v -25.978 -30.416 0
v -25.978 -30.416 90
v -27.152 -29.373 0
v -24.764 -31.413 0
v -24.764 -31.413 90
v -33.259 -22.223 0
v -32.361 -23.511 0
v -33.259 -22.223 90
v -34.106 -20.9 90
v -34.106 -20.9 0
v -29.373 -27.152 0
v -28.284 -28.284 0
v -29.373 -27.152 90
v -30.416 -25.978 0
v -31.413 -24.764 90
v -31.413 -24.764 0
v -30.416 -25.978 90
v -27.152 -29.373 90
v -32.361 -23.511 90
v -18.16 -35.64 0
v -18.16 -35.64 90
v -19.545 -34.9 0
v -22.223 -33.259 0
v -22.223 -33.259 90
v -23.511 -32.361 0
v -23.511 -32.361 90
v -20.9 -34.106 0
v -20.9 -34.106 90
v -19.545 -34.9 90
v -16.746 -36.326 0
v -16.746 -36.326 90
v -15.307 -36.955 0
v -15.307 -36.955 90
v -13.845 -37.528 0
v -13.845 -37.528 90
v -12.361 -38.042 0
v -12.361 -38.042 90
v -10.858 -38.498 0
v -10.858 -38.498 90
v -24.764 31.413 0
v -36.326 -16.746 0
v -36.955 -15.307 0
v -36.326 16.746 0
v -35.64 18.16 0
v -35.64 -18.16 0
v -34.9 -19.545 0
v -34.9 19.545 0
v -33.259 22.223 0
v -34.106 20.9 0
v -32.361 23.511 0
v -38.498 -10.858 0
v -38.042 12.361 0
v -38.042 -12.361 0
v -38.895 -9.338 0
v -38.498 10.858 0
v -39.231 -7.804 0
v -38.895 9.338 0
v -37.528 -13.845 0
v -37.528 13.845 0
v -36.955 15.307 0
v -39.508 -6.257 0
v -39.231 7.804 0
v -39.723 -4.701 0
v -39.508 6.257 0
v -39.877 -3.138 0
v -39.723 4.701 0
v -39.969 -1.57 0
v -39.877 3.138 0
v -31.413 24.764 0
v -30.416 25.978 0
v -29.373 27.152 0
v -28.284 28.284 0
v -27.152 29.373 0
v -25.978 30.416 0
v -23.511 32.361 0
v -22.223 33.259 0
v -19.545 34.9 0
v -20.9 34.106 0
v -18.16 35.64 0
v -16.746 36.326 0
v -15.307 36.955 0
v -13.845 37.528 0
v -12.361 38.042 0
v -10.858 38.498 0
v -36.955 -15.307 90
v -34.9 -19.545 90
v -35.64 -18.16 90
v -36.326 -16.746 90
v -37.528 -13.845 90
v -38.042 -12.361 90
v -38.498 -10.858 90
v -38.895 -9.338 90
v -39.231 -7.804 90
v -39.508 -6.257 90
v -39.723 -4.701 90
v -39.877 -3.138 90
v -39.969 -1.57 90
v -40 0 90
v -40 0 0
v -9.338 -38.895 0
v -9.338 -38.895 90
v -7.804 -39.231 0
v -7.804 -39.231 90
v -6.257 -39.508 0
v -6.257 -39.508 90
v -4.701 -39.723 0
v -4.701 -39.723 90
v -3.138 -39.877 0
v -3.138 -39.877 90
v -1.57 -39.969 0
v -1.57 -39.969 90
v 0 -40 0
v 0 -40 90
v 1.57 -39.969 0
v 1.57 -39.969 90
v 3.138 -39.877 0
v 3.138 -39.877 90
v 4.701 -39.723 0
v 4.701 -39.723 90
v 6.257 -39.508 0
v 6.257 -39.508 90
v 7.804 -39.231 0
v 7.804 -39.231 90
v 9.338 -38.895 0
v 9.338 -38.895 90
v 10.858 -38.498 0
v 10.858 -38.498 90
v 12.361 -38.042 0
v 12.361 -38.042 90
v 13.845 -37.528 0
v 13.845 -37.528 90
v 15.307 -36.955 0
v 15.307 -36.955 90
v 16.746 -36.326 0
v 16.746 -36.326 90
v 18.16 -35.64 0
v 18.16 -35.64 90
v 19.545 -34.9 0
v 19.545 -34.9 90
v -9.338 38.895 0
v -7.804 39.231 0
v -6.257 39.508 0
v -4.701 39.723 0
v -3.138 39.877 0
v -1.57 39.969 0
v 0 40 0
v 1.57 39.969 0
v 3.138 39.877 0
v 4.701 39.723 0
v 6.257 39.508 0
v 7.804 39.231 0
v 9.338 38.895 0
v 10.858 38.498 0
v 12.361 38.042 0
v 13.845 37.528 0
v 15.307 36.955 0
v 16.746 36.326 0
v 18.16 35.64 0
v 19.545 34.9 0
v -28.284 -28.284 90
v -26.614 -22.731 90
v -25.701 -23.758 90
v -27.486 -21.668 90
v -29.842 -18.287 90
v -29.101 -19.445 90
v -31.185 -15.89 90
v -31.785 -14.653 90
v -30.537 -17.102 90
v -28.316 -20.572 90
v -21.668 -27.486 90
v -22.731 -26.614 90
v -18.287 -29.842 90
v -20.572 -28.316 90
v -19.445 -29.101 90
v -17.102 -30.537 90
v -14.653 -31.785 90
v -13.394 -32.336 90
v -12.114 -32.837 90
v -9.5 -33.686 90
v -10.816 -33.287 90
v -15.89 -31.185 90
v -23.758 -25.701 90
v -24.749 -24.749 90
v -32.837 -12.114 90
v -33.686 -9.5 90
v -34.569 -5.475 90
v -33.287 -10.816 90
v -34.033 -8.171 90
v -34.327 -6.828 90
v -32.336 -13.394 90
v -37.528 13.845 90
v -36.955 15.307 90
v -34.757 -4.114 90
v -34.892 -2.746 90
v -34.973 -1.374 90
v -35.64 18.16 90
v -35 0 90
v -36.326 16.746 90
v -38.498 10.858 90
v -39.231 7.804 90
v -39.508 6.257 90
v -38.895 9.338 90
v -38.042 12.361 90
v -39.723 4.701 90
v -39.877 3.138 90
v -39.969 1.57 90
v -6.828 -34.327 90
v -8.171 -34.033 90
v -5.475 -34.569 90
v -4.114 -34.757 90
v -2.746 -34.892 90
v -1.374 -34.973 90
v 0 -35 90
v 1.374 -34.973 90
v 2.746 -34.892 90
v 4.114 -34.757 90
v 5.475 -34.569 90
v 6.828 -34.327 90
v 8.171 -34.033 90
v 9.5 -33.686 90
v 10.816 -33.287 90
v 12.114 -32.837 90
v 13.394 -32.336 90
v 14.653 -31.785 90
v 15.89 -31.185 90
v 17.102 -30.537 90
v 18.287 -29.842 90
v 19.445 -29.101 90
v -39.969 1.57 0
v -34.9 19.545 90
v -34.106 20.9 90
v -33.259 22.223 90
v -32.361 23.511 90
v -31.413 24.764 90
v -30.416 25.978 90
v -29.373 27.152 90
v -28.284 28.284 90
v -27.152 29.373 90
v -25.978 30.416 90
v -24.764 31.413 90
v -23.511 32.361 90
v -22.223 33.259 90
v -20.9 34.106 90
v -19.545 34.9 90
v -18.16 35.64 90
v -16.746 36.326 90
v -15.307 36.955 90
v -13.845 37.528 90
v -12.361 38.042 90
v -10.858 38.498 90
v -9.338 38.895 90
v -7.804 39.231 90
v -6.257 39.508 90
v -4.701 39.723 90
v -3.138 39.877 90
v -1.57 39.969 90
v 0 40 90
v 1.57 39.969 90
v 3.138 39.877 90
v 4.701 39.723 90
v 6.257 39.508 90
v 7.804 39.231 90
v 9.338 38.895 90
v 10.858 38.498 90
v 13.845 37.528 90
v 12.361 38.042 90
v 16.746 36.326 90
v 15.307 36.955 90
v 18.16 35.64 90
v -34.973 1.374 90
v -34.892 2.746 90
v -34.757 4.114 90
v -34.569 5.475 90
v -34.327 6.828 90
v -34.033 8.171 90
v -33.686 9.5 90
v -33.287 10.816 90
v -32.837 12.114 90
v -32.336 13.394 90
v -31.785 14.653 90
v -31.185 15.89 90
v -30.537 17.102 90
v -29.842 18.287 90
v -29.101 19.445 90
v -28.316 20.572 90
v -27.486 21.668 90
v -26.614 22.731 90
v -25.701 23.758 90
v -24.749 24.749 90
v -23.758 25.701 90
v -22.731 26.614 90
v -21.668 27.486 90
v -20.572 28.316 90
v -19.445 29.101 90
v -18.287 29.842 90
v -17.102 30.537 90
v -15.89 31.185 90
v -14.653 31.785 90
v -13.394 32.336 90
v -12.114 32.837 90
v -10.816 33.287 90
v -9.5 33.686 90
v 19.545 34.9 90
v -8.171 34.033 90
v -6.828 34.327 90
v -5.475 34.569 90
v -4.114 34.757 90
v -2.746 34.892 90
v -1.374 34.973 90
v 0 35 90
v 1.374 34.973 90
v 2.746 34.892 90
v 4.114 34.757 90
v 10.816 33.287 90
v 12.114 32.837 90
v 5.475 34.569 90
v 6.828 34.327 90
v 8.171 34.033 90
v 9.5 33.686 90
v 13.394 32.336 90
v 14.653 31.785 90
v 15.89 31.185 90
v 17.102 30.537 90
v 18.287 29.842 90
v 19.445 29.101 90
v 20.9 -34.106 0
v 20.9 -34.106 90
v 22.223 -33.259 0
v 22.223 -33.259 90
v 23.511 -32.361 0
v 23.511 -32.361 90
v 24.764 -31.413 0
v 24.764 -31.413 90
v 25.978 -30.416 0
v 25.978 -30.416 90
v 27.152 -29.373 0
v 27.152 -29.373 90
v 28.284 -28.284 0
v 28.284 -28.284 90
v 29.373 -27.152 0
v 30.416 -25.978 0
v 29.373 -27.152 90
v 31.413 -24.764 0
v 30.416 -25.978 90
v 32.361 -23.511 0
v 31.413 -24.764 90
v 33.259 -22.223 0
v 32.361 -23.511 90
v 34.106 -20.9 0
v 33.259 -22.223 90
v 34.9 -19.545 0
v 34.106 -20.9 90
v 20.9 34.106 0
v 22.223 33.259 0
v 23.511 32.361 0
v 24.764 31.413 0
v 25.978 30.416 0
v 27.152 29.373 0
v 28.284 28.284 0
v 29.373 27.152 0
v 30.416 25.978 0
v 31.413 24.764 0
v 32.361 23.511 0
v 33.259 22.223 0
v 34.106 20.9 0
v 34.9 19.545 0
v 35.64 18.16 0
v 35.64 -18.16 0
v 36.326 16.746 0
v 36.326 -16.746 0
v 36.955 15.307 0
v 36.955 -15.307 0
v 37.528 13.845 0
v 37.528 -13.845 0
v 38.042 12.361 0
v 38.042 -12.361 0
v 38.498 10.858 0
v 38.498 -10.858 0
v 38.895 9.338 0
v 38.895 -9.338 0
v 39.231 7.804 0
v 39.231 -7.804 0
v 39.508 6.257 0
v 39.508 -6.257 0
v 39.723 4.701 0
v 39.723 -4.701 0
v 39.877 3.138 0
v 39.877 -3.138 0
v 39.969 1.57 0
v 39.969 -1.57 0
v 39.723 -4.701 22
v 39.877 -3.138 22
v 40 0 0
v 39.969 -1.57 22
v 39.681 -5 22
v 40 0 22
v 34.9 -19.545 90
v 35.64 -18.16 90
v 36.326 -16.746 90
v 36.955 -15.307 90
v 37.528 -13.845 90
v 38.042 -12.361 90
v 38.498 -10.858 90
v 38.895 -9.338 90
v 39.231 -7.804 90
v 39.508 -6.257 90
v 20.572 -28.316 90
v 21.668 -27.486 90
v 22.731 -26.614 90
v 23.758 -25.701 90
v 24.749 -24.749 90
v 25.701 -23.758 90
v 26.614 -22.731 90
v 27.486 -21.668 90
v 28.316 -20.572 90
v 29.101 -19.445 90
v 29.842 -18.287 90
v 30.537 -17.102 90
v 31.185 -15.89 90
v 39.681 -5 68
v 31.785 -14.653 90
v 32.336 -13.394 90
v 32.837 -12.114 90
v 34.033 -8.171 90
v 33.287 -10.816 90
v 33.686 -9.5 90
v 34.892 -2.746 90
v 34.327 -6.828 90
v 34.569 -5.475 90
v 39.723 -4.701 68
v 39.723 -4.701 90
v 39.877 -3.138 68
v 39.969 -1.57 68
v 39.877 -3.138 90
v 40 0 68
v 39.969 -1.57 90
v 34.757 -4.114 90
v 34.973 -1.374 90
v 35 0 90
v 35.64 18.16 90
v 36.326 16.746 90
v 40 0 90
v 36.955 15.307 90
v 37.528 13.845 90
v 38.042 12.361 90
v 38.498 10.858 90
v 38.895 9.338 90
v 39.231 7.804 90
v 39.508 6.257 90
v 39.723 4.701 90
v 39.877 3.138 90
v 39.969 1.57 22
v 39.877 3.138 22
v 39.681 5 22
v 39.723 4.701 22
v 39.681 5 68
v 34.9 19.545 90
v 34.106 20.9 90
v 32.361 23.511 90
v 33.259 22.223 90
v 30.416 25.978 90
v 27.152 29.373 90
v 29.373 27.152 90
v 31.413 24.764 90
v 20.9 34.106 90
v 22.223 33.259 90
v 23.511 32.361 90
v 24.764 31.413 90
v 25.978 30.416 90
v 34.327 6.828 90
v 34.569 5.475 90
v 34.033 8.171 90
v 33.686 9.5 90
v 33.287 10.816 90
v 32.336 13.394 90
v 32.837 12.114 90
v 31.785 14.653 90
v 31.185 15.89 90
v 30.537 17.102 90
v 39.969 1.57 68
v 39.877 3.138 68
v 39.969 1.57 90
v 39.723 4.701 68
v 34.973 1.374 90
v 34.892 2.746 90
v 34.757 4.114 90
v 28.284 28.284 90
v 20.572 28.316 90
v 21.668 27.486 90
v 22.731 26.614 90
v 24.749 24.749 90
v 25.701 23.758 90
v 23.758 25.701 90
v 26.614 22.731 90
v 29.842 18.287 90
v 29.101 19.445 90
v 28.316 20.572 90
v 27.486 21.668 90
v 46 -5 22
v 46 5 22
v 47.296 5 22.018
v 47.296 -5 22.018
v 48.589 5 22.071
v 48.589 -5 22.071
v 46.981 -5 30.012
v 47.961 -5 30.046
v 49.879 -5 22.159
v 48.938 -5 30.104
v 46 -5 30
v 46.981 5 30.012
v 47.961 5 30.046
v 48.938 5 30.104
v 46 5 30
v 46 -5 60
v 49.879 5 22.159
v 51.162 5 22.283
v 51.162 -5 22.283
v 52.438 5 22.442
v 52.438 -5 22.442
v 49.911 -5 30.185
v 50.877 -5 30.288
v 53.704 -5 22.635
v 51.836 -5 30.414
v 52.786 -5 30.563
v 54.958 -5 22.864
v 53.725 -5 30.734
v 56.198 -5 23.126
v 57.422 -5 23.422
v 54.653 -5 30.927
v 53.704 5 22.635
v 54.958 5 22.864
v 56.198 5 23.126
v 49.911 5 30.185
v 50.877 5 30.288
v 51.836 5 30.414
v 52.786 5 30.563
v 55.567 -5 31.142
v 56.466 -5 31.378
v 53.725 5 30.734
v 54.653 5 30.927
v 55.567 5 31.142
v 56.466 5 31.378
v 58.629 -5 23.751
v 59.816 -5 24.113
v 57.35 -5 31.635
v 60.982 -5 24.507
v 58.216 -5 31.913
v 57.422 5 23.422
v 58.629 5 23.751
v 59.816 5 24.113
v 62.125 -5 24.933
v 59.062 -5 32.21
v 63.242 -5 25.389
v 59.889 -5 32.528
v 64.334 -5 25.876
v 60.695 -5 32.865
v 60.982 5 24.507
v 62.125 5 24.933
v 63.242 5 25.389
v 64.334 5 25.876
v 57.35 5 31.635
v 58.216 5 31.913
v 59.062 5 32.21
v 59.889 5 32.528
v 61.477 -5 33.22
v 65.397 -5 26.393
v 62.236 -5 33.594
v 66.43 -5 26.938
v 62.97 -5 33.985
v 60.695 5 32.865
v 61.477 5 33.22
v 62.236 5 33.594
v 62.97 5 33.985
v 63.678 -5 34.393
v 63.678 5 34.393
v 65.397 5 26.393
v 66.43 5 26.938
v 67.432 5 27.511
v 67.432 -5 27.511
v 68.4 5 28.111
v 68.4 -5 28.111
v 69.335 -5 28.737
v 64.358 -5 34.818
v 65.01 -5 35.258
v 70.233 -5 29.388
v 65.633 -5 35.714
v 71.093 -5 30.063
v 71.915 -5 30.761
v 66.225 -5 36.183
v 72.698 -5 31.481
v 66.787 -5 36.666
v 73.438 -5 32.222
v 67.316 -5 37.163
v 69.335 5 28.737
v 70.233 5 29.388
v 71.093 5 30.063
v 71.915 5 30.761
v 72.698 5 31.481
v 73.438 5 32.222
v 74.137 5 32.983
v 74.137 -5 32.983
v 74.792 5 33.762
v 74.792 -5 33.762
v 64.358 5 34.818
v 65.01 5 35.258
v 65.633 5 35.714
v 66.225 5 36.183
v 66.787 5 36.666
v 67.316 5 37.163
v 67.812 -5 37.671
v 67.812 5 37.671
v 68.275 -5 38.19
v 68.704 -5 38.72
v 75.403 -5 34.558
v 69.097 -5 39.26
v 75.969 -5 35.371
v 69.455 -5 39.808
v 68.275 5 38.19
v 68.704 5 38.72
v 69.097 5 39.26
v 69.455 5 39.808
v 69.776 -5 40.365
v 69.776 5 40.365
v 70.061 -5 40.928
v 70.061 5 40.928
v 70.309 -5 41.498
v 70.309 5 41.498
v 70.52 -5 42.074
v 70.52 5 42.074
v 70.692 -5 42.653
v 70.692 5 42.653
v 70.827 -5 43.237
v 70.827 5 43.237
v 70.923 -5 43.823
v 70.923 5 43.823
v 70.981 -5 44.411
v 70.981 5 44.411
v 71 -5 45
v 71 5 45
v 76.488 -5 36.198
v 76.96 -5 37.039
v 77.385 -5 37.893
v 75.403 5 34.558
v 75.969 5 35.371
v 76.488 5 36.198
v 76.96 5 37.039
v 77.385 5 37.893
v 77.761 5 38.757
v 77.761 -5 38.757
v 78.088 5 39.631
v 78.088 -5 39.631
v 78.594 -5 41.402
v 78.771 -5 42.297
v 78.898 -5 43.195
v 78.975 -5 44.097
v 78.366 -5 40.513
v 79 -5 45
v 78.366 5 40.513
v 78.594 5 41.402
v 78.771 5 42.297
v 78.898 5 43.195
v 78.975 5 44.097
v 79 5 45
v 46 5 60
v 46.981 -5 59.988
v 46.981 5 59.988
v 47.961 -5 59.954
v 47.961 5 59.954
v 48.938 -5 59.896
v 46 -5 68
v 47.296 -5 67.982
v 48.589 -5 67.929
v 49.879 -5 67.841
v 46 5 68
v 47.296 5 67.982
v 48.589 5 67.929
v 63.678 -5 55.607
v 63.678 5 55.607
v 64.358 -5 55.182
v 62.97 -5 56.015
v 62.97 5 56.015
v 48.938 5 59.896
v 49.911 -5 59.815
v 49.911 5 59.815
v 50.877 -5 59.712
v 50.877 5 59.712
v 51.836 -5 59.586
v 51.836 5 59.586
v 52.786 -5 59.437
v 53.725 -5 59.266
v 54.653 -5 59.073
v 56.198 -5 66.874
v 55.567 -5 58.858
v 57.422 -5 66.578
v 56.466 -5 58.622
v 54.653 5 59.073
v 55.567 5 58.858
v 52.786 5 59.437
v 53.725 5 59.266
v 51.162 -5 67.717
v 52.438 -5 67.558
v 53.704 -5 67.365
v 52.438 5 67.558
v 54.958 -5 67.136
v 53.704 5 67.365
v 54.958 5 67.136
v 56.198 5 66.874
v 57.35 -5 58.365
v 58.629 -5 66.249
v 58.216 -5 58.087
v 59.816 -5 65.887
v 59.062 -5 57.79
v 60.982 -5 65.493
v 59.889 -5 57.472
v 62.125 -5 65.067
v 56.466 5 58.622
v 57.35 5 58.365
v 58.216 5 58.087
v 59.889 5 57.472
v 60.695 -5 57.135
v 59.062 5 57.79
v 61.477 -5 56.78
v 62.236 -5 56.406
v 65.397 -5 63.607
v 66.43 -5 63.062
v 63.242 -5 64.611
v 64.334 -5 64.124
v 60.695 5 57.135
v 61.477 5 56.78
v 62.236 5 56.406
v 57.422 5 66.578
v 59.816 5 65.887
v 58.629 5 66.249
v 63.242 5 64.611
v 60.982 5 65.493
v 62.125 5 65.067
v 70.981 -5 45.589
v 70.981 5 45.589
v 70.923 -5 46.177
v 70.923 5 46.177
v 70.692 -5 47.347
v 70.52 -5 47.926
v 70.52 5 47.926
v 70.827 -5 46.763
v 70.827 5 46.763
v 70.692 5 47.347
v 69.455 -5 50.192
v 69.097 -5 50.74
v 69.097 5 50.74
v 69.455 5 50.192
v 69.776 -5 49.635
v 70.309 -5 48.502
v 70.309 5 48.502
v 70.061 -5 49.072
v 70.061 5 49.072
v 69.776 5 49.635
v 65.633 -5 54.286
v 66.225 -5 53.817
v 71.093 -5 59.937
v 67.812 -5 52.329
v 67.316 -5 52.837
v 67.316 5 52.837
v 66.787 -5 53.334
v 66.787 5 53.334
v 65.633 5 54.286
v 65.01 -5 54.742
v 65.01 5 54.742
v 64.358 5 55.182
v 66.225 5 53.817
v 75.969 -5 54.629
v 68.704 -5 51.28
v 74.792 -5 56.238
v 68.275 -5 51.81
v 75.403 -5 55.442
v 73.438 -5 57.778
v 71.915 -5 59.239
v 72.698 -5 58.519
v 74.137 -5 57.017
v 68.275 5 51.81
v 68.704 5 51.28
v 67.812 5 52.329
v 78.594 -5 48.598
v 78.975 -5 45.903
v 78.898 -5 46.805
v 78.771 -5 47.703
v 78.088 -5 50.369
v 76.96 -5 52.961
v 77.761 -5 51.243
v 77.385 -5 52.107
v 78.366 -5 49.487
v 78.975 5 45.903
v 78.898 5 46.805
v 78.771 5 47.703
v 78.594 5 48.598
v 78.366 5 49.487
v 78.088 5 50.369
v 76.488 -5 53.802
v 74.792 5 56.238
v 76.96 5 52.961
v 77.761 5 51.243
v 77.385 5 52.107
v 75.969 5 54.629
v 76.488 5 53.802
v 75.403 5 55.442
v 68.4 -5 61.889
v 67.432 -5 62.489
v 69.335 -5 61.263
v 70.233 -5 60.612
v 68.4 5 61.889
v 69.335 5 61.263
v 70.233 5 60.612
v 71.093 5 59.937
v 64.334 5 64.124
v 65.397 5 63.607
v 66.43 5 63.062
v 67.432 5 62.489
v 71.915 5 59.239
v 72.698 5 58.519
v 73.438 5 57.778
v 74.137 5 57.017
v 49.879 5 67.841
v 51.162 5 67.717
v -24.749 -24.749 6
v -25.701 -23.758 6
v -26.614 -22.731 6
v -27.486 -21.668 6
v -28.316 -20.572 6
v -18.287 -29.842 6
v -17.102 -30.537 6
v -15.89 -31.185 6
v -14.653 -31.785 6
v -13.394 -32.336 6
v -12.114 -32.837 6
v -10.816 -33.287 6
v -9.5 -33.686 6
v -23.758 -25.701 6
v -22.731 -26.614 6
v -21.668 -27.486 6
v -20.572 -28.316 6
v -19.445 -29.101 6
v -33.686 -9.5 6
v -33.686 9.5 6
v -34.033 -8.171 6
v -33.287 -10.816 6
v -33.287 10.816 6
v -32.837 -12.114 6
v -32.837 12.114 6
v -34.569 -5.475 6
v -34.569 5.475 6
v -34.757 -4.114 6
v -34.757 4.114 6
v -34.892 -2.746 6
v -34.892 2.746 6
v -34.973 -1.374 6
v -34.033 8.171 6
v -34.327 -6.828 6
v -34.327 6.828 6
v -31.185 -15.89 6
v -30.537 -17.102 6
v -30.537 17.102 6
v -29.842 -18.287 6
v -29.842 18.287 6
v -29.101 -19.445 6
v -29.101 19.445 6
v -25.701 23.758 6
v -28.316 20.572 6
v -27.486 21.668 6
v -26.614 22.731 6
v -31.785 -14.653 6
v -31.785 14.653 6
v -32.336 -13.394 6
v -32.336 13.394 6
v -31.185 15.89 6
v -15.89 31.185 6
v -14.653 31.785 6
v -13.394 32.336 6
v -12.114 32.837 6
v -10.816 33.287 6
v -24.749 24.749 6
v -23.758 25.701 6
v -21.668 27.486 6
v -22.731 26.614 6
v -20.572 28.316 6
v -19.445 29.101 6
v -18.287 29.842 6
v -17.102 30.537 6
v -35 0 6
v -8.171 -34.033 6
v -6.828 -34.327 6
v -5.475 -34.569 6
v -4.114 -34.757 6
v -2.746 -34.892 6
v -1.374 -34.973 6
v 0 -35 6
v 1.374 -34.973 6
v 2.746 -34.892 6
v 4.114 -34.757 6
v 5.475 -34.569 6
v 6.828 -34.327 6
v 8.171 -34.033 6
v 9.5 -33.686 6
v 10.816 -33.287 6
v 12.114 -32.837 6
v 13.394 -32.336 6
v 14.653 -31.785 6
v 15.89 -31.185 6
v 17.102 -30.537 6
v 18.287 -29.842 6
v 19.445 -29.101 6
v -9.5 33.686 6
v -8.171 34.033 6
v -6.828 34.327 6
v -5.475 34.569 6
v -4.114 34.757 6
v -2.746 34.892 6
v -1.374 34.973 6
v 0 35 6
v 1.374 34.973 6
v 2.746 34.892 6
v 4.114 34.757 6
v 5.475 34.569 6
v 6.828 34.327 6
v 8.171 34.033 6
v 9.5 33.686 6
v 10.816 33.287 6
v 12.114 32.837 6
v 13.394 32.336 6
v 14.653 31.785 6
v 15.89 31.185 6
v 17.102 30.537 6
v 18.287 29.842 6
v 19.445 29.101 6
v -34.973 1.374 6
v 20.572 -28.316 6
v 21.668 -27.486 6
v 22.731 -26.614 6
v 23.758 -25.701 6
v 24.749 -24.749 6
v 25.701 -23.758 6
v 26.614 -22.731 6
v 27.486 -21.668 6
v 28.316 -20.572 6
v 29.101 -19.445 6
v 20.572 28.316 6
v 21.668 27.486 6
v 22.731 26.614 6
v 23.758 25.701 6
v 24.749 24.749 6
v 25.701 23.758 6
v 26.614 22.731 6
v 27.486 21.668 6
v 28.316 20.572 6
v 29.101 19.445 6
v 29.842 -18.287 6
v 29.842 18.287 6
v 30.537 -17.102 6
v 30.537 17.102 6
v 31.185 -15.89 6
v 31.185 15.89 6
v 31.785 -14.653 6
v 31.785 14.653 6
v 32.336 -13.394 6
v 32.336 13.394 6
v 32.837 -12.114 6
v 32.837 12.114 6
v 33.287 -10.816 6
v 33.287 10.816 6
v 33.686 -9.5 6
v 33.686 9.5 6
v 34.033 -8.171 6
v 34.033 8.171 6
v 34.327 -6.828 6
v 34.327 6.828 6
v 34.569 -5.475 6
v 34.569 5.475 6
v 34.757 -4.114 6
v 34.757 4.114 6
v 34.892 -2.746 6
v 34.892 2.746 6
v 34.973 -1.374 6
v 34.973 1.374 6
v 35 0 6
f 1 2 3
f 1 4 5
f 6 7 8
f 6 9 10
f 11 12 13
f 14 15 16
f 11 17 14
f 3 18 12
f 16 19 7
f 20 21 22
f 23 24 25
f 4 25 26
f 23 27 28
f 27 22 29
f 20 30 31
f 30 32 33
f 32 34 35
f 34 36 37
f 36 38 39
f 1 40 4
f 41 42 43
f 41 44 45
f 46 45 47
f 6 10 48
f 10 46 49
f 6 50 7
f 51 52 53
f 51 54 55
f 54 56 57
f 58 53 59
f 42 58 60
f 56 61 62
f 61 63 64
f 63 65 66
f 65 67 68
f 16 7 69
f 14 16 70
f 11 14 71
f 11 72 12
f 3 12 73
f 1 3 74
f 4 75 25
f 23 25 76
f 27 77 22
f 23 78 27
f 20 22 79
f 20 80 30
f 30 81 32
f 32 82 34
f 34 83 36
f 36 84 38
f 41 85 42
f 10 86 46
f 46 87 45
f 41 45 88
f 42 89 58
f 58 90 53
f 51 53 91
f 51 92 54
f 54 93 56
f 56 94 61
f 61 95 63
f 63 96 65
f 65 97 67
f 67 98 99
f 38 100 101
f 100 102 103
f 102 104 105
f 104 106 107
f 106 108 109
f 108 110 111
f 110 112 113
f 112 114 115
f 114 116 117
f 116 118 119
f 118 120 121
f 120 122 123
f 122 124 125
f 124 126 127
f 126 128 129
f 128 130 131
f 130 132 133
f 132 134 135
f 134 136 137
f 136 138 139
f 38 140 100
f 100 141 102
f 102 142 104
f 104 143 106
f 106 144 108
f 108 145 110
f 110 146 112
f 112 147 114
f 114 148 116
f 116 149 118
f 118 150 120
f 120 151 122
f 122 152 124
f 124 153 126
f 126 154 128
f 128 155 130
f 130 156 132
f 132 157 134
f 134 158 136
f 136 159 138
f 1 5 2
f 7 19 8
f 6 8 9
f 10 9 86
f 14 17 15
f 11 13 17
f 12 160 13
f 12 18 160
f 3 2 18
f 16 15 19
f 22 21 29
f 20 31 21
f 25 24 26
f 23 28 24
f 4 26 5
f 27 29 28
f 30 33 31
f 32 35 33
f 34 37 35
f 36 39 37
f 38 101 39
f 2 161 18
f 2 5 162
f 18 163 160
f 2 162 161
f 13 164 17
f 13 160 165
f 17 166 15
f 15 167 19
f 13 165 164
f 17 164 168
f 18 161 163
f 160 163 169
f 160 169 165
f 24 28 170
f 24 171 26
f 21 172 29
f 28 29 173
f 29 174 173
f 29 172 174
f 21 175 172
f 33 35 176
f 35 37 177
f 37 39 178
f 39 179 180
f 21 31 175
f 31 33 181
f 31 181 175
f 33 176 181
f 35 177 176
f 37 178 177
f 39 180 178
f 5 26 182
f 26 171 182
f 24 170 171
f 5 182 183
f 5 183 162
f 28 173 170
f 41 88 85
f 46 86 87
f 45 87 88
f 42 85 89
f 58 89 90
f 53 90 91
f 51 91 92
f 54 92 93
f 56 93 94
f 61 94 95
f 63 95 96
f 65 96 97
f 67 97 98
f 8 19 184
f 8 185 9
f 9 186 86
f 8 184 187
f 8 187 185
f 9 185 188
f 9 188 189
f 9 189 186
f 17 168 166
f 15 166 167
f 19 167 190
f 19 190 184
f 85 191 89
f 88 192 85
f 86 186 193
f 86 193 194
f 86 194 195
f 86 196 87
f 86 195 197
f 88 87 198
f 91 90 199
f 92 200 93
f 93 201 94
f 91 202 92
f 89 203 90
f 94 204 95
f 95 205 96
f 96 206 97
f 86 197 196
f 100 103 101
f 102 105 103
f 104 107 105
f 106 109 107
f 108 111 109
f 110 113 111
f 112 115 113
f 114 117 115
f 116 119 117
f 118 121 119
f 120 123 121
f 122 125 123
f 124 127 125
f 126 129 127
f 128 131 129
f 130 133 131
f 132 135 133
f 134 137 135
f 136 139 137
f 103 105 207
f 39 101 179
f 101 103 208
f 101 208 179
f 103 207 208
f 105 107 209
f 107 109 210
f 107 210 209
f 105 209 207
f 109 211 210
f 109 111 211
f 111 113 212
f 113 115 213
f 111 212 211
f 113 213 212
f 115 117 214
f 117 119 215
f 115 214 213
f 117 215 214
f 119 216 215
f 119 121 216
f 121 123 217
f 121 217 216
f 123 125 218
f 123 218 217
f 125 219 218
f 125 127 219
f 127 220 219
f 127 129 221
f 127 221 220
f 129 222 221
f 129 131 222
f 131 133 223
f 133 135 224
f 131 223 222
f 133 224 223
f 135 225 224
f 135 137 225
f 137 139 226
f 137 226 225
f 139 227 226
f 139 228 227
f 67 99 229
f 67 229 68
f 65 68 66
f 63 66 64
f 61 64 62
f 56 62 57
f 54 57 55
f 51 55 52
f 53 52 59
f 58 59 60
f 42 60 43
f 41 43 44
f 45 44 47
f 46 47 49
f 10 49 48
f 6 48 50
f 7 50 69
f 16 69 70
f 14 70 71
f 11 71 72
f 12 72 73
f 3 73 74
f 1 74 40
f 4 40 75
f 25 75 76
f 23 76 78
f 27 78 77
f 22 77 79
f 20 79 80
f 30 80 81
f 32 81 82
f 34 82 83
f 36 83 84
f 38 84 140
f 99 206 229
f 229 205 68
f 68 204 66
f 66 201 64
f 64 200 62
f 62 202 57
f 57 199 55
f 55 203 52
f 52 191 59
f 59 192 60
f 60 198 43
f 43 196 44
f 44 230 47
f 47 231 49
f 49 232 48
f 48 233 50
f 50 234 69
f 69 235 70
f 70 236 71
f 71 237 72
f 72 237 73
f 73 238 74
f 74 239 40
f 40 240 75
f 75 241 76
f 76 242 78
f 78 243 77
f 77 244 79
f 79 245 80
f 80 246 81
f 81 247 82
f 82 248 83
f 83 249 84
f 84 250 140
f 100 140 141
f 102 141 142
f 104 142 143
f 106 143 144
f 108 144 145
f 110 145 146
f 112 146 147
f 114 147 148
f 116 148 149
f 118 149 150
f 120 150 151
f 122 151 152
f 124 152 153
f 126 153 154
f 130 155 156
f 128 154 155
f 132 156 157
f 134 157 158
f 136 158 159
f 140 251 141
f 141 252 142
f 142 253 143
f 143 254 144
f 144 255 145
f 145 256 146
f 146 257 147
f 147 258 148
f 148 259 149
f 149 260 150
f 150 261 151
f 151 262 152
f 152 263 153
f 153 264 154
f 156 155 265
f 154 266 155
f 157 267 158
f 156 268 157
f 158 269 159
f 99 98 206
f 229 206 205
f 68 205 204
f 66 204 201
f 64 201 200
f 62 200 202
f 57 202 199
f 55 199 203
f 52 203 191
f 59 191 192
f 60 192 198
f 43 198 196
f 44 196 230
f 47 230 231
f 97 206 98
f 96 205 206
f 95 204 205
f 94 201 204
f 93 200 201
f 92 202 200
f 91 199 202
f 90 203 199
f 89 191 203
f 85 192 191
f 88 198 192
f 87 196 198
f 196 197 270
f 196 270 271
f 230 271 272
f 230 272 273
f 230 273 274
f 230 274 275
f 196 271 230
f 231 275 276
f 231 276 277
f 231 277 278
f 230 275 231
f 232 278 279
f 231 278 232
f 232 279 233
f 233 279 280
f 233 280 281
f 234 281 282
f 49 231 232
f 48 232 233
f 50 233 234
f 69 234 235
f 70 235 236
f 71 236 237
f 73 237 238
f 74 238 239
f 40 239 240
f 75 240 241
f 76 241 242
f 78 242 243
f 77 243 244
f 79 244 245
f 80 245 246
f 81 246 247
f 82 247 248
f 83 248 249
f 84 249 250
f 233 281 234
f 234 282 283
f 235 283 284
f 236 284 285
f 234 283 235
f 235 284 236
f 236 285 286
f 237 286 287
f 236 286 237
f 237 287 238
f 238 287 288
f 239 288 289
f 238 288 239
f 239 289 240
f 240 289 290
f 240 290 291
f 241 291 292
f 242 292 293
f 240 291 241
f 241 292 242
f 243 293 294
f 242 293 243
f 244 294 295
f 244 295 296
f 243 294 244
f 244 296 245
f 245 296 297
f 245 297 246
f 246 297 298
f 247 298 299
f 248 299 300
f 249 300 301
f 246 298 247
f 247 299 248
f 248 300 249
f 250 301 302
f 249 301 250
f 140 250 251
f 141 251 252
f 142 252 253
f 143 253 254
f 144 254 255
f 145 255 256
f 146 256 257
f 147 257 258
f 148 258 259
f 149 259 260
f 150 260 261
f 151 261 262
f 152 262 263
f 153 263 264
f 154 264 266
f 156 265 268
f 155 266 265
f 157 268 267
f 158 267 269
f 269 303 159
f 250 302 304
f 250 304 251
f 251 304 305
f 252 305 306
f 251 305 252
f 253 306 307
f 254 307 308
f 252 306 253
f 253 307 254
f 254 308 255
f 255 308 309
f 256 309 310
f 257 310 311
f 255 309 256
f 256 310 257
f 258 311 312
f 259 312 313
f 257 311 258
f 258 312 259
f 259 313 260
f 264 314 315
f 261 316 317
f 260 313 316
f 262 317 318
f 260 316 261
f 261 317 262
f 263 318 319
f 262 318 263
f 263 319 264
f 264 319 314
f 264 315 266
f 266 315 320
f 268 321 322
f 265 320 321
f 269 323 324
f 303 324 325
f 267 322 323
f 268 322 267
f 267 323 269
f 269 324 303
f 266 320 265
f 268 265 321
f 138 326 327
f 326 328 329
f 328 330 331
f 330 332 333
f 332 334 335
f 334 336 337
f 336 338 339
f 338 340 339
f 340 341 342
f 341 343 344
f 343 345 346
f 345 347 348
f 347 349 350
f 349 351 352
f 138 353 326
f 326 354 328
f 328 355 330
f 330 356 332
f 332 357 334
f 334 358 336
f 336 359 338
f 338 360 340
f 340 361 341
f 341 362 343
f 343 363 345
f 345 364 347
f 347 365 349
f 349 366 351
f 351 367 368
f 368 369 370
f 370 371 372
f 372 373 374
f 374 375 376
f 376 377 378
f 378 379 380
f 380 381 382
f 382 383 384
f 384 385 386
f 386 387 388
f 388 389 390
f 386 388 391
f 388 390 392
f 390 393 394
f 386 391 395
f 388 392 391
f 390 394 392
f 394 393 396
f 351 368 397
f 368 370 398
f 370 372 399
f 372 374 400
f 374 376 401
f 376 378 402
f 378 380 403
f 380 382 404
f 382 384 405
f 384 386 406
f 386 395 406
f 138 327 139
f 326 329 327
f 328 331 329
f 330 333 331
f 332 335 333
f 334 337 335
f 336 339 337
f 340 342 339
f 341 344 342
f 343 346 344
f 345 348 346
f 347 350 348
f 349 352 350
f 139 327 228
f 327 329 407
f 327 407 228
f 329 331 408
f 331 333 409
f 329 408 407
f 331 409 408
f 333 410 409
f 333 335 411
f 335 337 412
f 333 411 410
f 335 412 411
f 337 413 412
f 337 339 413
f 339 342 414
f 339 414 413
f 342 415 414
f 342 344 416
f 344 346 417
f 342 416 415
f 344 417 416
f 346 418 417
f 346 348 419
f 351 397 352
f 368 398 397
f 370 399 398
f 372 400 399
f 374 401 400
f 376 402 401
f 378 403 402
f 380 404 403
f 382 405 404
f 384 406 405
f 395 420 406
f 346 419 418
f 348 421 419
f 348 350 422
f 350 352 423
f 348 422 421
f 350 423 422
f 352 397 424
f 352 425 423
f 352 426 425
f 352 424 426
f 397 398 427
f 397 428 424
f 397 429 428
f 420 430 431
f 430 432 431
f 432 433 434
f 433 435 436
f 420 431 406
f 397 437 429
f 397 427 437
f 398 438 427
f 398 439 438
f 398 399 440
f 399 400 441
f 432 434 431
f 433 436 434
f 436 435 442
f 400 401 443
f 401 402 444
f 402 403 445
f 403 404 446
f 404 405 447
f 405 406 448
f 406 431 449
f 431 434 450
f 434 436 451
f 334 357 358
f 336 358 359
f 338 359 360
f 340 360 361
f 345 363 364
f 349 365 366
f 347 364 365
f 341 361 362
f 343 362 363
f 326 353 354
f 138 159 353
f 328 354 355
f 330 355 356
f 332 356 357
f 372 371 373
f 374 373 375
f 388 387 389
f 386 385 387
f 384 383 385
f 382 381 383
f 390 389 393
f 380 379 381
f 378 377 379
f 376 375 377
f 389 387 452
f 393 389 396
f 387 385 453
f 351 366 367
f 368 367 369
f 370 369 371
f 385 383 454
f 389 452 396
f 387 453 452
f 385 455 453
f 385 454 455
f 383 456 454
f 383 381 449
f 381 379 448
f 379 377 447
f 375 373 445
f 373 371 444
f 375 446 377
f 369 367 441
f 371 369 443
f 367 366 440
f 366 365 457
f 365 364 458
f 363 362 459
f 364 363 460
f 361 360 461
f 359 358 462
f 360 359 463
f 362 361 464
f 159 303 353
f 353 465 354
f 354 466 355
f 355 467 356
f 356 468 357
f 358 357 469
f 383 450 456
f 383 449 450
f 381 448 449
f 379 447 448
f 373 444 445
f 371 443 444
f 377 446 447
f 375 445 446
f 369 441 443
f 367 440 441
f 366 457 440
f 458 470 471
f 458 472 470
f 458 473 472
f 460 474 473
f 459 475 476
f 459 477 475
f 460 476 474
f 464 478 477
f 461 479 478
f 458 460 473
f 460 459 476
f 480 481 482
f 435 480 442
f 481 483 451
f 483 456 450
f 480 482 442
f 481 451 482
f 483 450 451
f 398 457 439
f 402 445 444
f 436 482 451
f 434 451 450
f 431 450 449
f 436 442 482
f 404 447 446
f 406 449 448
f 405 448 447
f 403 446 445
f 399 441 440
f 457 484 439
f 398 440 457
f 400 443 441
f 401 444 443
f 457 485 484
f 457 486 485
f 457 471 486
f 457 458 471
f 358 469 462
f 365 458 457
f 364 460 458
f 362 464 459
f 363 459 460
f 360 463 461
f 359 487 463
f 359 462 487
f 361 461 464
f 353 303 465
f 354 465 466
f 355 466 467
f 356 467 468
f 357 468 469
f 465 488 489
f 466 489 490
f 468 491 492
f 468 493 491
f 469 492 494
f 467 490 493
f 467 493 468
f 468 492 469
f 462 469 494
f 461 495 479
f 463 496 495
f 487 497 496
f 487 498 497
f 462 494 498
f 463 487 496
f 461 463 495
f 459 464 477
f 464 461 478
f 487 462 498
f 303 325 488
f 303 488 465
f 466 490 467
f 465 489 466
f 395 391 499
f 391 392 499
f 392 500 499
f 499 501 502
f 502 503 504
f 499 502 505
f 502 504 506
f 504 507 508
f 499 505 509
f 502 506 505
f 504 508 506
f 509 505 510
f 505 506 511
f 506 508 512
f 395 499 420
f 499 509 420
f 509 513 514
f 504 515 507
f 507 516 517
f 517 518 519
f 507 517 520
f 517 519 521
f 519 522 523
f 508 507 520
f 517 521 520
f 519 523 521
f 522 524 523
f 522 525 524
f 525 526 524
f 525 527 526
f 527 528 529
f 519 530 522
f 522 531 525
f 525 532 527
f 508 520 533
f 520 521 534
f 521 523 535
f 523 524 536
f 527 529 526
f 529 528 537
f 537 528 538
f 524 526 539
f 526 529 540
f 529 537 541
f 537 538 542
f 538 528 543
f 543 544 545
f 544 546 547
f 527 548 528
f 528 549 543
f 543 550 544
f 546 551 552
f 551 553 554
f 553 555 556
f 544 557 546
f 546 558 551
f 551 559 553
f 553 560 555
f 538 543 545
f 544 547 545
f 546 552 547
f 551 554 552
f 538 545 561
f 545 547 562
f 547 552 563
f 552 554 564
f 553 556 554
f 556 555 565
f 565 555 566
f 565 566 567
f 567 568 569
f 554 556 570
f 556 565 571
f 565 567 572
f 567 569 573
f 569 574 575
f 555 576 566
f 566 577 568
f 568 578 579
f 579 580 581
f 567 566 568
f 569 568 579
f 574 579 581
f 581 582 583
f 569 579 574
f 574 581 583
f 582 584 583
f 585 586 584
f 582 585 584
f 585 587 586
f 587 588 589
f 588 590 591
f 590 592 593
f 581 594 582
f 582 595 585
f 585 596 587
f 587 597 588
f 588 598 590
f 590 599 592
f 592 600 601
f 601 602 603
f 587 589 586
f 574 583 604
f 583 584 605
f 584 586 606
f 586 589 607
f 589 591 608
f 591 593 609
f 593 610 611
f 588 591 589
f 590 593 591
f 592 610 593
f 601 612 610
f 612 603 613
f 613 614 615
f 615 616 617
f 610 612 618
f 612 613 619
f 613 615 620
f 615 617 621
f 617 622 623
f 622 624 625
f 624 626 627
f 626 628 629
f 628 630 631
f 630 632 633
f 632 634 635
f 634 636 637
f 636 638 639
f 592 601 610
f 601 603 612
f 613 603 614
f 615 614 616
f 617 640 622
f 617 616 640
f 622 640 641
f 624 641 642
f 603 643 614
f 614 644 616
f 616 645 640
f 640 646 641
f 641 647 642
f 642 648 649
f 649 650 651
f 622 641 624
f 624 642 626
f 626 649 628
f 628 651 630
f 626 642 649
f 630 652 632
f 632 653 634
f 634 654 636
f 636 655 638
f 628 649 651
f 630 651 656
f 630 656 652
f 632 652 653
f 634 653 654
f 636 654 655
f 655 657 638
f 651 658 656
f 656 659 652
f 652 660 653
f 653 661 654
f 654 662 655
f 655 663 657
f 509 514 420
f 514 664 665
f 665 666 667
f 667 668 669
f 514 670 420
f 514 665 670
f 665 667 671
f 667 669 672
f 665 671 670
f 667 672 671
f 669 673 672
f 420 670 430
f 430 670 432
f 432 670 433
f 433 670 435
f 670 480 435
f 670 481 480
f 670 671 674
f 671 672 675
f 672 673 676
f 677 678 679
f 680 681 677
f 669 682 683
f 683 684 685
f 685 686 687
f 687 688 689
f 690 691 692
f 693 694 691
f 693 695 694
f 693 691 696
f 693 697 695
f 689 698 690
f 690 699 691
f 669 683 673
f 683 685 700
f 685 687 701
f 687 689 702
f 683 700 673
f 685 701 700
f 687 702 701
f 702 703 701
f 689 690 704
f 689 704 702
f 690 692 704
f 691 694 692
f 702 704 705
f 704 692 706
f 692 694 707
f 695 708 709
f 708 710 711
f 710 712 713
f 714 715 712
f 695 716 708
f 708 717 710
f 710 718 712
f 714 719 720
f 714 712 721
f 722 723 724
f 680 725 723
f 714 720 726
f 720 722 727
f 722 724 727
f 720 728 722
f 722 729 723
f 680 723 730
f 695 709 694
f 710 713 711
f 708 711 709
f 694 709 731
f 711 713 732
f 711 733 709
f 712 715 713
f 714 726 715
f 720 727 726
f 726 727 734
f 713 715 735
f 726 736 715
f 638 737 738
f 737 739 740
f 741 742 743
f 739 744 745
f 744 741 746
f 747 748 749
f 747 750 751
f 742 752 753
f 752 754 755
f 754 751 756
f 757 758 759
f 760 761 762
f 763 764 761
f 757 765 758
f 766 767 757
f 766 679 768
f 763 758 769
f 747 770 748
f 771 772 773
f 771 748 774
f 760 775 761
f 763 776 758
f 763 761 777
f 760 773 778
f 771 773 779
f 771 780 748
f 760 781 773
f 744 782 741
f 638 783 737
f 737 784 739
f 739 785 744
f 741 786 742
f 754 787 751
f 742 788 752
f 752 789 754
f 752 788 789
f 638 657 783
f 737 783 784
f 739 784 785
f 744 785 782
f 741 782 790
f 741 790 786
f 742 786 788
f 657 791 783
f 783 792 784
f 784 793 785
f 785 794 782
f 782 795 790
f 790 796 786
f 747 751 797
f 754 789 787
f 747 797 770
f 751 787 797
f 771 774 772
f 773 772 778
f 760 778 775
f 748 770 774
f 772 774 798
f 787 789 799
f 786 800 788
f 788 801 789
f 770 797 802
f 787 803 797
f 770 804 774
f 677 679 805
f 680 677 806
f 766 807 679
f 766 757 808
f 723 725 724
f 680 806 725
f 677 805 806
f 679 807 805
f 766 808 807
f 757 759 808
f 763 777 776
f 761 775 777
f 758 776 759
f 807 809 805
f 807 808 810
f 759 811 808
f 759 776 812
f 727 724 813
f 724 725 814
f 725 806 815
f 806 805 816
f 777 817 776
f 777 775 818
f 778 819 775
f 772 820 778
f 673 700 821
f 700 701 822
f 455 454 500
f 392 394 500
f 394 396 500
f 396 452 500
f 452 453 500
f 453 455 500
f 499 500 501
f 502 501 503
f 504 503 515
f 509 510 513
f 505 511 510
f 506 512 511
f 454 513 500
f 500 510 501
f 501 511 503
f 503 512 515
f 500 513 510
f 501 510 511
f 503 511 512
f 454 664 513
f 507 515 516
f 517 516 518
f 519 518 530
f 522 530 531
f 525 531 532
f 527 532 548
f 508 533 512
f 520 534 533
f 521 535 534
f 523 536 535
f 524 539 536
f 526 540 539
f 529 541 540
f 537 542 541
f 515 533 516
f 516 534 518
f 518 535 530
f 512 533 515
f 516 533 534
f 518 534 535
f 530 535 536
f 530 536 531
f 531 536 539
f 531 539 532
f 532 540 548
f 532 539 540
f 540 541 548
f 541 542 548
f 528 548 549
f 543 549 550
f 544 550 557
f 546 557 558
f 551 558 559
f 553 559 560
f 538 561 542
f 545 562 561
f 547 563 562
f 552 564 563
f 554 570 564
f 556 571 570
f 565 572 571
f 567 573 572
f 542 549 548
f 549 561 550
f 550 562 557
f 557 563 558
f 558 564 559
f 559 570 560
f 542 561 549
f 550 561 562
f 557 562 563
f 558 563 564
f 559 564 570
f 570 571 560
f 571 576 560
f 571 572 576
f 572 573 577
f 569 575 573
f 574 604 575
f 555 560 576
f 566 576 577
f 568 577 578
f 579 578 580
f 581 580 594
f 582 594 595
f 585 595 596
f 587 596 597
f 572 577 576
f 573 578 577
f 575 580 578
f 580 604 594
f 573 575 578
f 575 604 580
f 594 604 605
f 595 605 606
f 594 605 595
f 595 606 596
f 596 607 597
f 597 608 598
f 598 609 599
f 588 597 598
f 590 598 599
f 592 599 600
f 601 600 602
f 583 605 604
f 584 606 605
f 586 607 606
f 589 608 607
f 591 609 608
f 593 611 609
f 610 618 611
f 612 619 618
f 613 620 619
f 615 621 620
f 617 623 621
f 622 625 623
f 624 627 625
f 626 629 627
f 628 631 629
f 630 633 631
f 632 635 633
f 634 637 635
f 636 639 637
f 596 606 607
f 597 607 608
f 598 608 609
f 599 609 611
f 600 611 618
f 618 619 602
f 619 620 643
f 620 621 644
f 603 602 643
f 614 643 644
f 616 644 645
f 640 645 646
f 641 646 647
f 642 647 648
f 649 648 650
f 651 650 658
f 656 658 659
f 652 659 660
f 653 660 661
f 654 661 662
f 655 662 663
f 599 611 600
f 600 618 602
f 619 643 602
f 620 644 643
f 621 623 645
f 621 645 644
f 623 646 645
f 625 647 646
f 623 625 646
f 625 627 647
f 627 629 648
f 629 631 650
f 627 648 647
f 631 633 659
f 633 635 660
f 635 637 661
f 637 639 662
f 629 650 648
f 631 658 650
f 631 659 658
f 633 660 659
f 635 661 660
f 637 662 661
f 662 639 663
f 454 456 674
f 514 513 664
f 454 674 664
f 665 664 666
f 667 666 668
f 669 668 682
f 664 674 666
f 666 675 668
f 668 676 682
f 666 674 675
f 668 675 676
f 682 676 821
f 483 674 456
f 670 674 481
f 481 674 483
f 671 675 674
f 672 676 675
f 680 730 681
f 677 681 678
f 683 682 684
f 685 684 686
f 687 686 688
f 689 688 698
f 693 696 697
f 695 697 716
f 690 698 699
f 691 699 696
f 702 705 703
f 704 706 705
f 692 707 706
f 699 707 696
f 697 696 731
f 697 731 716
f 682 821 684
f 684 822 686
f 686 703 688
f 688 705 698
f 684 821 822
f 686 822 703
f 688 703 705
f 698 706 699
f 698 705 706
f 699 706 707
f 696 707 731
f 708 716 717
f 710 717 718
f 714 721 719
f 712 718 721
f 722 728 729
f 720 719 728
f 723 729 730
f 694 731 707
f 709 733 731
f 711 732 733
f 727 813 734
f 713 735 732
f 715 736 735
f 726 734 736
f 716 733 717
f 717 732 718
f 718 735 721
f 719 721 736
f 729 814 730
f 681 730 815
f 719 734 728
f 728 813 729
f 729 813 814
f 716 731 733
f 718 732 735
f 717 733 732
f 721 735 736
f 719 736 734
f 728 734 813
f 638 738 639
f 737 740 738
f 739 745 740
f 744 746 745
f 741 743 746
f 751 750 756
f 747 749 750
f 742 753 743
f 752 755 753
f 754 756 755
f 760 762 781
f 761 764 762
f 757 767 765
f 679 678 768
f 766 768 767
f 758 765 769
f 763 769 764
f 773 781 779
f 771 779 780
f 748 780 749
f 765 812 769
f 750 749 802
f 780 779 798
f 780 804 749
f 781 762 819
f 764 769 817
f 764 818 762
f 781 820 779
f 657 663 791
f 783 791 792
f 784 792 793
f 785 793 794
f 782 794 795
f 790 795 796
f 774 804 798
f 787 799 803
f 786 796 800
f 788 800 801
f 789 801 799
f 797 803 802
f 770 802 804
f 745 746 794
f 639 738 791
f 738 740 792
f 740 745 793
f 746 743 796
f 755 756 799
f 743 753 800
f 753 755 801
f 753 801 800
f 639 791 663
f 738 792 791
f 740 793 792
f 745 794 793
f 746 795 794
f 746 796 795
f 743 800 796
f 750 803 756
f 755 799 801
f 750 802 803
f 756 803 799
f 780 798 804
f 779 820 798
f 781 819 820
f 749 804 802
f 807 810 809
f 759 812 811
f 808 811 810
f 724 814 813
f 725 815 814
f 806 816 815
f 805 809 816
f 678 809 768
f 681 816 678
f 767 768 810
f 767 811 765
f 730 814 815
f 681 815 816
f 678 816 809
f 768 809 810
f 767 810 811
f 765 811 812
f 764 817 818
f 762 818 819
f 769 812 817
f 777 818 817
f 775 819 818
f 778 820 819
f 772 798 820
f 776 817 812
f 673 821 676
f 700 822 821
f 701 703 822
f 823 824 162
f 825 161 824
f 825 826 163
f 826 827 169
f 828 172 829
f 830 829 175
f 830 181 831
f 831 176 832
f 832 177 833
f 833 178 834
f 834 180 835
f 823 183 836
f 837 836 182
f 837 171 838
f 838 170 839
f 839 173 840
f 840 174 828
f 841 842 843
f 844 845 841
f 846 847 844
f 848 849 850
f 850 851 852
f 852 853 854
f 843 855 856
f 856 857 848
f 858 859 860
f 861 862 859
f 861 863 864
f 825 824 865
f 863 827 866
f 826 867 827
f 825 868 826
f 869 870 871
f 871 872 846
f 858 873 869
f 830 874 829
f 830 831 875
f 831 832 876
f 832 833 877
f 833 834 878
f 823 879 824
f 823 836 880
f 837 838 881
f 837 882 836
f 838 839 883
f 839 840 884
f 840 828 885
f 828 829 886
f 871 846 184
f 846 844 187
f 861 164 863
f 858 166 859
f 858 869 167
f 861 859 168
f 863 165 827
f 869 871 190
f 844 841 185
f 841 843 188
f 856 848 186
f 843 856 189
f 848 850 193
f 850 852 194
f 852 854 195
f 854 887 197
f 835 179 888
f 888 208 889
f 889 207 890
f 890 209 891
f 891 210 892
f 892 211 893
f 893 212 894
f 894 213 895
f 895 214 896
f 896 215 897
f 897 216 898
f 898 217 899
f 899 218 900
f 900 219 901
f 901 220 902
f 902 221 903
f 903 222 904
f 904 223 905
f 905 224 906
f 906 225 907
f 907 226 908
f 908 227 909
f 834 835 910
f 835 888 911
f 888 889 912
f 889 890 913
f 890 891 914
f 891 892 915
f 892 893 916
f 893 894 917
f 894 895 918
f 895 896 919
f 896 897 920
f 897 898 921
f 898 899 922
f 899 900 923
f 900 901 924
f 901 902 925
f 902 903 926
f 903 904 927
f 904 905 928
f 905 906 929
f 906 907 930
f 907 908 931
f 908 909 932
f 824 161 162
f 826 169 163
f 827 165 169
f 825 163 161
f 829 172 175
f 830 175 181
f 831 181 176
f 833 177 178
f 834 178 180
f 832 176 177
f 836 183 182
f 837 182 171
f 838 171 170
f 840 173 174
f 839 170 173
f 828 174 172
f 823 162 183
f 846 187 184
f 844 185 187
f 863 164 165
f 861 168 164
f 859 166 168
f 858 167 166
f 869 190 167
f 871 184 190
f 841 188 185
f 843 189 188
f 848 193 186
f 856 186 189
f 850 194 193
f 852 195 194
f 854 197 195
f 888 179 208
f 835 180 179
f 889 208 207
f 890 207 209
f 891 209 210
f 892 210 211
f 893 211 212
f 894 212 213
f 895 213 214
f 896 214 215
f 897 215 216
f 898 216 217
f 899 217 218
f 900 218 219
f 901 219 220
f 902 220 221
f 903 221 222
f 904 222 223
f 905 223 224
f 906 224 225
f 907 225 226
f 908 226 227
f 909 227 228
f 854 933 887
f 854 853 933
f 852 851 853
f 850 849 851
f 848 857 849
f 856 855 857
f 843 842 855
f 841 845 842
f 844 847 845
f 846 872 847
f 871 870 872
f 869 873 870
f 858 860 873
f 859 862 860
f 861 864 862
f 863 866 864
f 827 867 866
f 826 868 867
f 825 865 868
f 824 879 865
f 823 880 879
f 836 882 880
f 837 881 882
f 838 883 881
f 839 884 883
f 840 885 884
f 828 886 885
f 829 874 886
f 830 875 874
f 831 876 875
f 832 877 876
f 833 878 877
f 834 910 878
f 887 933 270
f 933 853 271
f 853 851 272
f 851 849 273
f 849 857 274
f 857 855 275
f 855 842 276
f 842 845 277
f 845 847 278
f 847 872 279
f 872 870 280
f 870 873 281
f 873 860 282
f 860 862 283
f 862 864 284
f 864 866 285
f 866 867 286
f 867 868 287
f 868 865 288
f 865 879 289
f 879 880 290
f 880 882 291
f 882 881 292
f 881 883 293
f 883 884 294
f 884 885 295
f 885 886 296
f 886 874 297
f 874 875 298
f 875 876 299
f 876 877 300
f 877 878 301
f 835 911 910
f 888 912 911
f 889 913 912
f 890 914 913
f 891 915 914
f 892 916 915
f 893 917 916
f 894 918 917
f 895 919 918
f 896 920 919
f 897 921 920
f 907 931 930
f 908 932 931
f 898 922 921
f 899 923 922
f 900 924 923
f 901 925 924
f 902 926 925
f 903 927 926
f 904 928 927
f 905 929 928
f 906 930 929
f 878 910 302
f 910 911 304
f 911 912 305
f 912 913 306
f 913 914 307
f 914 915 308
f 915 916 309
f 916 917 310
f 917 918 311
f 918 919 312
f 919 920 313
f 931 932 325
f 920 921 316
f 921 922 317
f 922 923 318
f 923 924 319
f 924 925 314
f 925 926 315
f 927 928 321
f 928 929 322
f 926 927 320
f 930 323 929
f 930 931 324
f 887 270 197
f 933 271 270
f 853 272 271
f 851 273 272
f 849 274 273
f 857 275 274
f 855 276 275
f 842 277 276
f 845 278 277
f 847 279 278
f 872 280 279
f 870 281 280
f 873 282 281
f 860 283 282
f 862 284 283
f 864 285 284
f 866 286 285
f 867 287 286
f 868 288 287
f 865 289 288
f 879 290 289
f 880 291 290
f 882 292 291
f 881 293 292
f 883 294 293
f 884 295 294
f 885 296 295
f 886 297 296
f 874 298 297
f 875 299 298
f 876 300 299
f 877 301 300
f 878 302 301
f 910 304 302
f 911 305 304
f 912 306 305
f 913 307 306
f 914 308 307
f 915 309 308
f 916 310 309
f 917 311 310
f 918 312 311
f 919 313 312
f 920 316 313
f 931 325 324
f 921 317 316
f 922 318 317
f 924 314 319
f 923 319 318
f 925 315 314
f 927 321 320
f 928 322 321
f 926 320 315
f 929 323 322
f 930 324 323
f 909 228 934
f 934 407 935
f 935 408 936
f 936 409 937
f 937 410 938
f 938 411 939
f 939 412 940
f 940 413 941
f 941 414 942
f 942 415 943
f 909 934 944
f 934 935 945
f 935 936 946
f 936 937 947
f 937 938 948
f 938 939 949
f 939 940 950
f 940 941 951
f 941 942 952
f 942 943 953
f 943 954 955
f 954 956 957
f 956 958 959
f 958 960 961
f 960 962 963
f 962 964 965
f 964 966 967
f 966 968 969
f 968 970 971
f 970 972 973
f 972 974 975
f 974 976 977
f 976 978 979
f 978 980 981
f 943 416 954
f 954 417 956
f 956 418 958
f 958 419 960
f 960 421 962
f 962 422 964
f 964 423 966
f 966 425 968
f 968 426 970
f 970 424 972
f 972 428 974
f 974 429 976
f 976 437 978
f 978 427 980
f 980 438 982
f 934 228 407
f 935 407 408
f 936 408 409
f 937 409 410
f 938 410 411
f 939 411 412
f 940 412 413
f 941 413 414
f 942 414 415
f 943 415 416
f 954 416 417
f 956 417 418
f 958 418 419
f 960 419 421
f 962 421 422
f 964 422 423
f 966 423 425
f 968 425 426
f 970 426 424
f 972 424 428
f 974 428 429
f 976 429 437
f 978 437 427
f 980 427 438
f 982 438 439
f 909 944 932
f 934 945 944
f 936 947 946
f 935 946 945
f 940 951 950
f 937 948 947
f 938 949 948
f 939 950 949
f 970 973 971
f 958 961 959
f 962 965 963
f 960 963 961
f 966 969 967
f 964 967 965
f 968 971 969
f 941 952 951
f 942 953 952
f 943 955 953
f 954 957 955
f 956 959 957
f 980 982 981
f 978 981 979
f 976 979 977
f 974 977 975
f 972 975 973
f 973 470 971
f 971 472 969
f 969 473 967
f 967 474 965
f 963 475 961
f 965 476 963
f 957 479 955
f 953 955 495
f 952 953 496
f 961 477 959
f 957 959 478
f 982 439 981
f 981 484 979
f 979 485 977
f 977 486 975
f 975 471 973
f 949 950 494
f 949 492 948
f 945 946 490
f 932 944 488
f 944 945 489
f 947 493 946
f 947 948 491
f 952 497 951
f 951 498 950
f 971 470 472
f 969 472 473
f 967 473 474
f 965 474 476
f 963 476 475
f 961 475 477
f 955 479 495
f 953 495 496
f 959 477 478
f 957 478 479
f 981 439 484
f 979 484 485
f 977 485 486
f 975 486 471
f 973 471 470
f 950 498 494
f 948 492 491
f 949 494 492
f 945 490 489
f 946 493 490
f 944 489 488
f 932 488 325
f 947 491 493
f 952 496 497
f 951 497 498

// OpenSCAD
$fn = 160;

outer_diameter = 80;
inner_diameter = 70;
mug_height = 90;
bottom_thickness = 6;

handle_opening_width = 25;
handle_opening_height = 30;
handle_wall = 8;
handle_depth = 10;

handle_center_z = mug_height / 2;
handle_body_edge_x = outer_diameter / 2 - 2;
handle_opening_edge_x = handle_body_edge_x + handle_wall;

// +X 側へ張り出す半楕円。直線側は x = 0。
module half_ellipse(rx, rz) {
    intersection() {
        scale([rx, rz])
            circle(r = 1);

        translate([0, -rz - 1])
            square([rx + 1, 2 * rz + 2]);
    }
}

module handle_profile() {
    difference() {
        union() {
            translate([handle_opening_edge_x, 0])
                half_ellipse(
                    handle_opening_width + handle_wall,
                    handle_opening_height / 2 + handle_wall
                );

            translate([
                handle_body_edge_x,
                -handle_opening_height / 2 - handle_wall
            ])
                square([
                    handle_wall,
                    handle_opening_height + 2 * handle_wall
                ]);
        }

        translate([handle_opening_edge_x, 0])
            half_ellipse(
                handle_opening_width,
                handle_opening_height / 2
            );
    }
}

module handle() {
    translate([0, 0, handle_center_z])
        rotate([90, 0, 0])
            linear_extrude(height = handle_depth, center = true)
                handle_profile();
}

render()
difference() {
    union() {
        cylinder(d = outer_diameter, h = mug_height);
        handle();
    }

    translate([0, 0, bottom_thickness])
        cylinder(
            d = inner_diameter,
            h = mug_height - bottom_thickness + 1
        );
}
